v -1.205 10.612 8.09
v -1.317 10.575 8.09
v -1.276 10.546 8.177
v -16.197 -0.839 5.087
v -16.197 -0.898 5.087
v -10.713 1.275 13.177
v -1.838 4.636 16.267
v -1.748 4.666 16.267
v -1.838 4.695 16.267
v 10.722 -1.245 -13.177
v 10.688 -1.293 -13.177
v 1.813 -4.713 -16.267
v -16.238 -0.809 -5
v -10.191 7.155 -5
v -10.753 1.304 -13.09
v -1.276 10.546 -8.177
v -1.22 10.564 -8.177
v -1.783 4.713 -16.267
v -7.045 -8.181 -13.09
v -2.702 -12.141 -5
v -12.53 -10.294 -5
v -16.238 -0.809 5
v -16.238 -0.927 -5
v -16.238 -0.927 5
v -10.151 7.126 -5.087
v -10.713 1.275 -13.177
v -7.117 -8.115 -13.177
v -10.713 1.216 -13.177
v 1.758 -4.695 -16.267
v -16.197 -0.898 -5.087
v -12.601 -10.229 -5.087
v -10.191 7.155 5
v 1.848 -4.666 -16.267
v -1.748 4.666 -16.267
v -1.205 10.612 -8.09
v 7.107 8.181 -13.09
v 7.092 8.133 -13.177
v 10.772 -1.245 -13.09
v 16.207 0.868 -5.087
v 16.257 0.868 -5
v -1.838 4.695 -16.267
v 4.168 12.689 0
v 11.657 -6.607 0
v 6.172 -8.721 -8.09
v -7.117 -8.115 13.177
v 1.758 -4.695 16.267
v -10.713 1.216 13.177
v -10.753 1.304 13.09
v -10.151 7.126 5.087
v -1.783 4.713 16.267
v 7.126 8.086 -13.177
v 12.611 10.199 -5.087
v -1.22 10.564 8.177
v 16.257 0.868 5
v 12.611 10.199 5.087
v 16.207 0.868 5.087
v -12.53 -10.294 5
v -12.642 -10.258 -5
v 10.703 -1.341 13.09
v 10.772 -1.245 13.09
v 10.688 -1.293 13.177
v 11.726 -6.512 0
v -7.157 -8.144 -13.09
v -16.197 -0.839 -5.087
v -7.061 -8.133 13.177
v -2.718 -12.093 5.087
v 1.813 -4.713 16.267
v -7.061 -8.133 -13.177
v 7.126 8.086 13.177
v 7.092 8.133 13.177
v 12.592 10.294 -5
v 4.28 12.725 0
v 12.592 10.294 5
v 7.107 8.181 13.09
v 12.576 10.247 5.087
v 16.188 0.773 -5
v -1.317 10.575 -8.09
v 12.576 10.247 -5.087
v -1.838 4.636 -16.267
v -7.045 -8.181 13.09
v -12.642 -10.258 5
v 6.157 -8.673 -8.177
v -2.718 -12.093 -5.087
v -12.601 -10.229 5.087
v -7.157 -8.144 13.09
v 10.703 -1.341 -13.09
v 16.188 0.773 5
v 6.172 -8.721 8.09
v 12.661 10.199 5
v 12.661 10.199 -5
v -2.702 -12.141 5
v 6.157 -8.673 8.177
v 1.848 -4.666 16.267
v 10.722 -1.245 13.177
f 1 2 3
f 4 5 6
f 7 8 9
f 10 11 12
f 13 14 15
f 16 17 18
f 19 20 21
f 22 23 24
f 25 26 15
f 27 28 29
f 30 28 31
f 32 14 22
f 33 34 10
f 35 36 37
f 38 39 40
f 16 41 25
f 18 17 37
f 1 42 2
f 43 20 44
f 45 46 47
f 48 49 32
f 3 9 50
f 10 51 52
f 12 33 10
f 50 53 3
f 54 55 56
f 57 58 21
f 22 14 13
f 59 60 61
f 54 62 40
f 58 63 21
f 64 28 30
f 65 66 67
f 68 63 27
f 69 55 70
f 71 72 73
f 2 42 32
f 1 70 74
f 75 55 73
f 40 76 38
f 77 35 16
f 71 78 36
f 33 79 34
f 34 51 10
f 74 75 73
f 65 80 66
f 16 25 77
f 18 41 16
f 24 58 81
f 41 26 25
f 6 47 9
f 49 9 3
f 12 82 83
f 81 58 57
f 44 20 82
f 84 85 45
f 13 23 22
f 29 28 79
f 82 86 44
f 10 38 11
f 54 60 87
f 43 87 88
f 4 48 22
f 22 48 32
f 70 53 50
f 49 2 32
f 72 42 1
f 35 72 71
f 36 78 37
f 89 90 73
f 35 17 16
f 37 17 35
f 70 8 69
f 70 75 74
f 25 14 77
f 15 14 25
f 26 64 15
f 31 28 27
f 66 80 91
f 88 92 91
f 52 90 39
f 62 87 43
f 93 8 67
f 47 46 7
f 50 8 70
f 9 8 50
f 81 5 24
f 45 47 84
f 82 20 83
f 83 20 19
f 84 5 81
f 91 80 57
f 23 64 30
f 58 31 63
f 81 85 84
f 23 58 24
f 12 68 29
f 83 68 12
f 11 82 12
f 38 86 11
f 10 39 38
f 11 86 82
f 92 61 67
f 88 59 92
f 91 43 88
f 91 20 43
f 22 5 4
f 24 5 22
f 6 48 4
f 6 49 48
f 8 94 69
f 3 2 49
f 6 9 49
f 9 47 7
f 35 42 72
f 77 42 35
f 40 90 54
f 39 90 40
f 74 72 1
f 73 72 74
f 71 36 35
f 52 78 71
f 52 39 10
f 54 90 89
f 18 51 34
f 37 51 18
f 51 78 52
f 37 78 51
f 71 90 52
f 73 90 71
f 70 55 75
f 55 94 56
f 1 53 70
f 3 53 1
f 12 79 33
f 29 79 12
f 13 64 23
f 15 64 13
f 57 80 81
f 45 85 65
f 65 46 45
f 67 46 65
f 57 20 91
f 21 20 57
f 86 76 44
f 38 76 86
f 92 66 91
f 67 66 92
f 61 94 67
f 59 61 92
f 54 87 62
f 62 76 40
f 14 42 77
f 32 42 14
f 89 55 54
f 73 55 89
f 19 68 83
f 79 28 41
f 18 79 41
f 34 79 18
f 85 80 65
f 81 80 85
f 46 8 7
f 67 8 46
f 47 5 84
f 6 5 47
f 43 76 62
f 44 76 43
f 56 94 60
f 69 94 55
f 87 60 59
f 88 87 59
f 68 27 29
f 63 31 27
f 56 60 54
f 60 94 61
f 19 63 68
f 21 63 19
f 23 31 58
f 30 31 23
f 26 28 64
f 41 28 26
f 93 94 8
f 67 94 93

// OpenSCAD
// Auto-generated OpenSCAD file

    inner_points = 10*[[-1.6157030013132576, -0.08682050620151305, 0.5000000000001401], [-1.256099372783235, -1.0199256612339145, 0.5000000000000209], [1.256099372783235, 1.0199256612339145, -0.5000000000000209], [1.6157030013132576, 0.08682050620151305, -0.5000000000001401], [-1.067237552347056, 0.12454920331922015, 1.3090169943750567], [-0.7076339238170337, -0.8085559517131813, 1.3090169943749375], [-1.615703001313349, -0.08682050620142057, -0.4999999999998599], [-1.2560993727833267, -1.019925661233822, -0.49999999999997924], [1.2560993727833267, 1.019925661233822, 0.49999999999997924], [1.615703001313349, 0.08682050620142057, 0.4999999999998599], [0.7076339238170337, 0.8085559517131813, -1.3090169943749375], [1.067237552347056, -0.12454920331922015, -1.3090169943750567], [-0.17980181426486283, 0.466552577516051, 1.6180339887499544], [0.17980181426515948, -0.46655257751635026, 1.6180339887498354], [-1.0672375523472961, 0.12454920331946218, -1.3090169943748382], [-0.7076339238172737, -0.808555951712939, -1.3090169943749572], [0.7076339238172737, 0.808555951712939, 1.3090169943749572], [1.0672375523472961, -0.12454920331946218, 1.3090169943748382], [-0.17980181426515948, 0.46655257751635026, -1.6180339887498354], [0.17980181426486283, -0.466552577516051, -1.6180339887499544], [-1.0110111624566542, 0.7096390219731582, 0.5000000000001583], [-0.273297902828303, -1.2045909548178053, 0.4999999999999137], [0.4248900245915921, 1.2630121056908719, 7.782663402622347e-14], [1.1626032842199434, -0.6512178711000915, -1.6681100944992977e-13], [-1.011011162456746, 0.7096390219732508, -0.4999999999998417], [-0.2732979028283946, -1.2045909548177127, -0.5000000000000864], [-0.1235754243746093, 1.0516423961701389, -0.8090169943748389], [0.6141378352537419, -0.8625875806208246, -0.8090169943750836], [-0.12357542437446101, 1.0516423961699892, 0.809016994375056], [0.6141378352538901, -0.8625875806209743, 0.8090169943748112]];

    outer_points = 10*[[1.4358365361613323, -0.12226738097965391, 0.8896393188941789], [1.6884671298168779, 0.12226738097965391, -0.04651266307389418], [-1.6884671298168779, -0.12226738097965391, 0.04651266307389418], [-1.4358365361613323, 0.12226738097965391, -0.8896393188941789], [1.076899131358998, 0.7999155599973826, 1.0336621046077892], [1.3295297250145435, 1.0444503219566905, 0.09751012263971623], [1.1980850363497777, -1.0444503219566905, 0.5845936703294112], [1.4507156300053232, -0.7999155599973826, -0.35155831163866175], [-1.4507156300053232, 0.7999155599973826, 0.35155831163866175], [-1.1980850363497777, 1.0444503219566905, -0.5845936703294112], [-1.3295297250145435, -1.0444503219566905, -0.09751012263971623], [-1.076899131358998, -0.7999155599973826, -1.0336621046077892], [0.2583747107435867, 1.3698559613665295, 0.9616502184820862], [0.5110053043991324, 1.6143907233258374, 0.025498236514013117], [0.4544576239760838, -1.6143907233258374, 0.23504222854497203], [0.7070882176316295, -1.3698559613665295, -0.7011097534231011], [-0.7070882176316295, 1.3698559613665295, 0.7011097534231011], [-0.4544576239760838, 1.6143907233258374, -0.23504222854497203], [-0.5110053043991324, -1.6143907233258374, -0.025498236514013117], [-0.2583747107435867, -1.3698559613665295, -0.9616502184820862], [0.5051973765349485, 0.004058182780676878, 1.233081608821516], [1.023459496106188, 0.5057120094532936, -0.6873988183317695], [-1.0569544564541566, 0.004058182780676878, 0.8115182809113736], [-0.538692336882917, 0.5057120094532936, -1.108962146241912], [0.2674458767233939, -0.9181247581963599, 0.9280359602567483], [0.7857079962946336, -0.416470931523743, -0.9924444668965372], [-0.6980170516518223, -0.9181247581963599, 0.6674954951977632], [-0.17975493208058263, -0.416470931523743, -1.2529849319555224], [-0.3133270440804627, 0.5739985841498236, 1.1610697226958127], [0.2049350754907769, 1.0756524108224406, -0.7594107044574727]];

    // Convex hull for inner set (I)
    module inner_hull() {
        hull() {
            for (p = inner_points) {
                translate(p) sphere(r=0.1);
            }
        }
    }

    // Convex hull for outer set (O) minus inner hull (O \ I)
    module outer_minus_inner() {
        difference() {
            hull() {
                for (p = outer_points) {
                    translate(p) sphere(r=0.1);
                }
            }
            inner_hull(); // Subtract inner hull
        }
    }

    // Convex hull for outer set (O) minus all translated inner hulls
    module outer_minus_AllTranslationInner() {
        difference() {
            hull() {
                for (p = outer_points) {
                    translate(p) sphere(r=0.1);
                }
            }
            hull() {
                translate([0,0,50]) inner_hull();
                translate([0,0,-50]) inner_hull();
            }; // Subtract translated inner hulls
        }
    }

    // Difference between outer_minus_inner and outer_minus_AllTranslationInner
    module outer_minus_inner_diff() {
        difference() {
            // Outer minus inner
            difference() {
                hull() {
                    for (p = outer_points) {
                        translate(p) sphere(r=0.1);
                    }
                }
                inner_hull();
            }

            // Subtract Outer minus AllTranslationInner
            difference() {
                hull() {
                    for (p = outer_points) {
                        translate(p) sphere(r=0.1);
                    }
                }
                hull() {
                    translate([0,0,50]) inner_hull();
                    translate([0,0,-50]) inner_hull();
                };
            }
        }
    }

    // Rendering all with colors applied
    color([1, 0, 0, 0.5]) inner_hull(); // Transparent red
    
